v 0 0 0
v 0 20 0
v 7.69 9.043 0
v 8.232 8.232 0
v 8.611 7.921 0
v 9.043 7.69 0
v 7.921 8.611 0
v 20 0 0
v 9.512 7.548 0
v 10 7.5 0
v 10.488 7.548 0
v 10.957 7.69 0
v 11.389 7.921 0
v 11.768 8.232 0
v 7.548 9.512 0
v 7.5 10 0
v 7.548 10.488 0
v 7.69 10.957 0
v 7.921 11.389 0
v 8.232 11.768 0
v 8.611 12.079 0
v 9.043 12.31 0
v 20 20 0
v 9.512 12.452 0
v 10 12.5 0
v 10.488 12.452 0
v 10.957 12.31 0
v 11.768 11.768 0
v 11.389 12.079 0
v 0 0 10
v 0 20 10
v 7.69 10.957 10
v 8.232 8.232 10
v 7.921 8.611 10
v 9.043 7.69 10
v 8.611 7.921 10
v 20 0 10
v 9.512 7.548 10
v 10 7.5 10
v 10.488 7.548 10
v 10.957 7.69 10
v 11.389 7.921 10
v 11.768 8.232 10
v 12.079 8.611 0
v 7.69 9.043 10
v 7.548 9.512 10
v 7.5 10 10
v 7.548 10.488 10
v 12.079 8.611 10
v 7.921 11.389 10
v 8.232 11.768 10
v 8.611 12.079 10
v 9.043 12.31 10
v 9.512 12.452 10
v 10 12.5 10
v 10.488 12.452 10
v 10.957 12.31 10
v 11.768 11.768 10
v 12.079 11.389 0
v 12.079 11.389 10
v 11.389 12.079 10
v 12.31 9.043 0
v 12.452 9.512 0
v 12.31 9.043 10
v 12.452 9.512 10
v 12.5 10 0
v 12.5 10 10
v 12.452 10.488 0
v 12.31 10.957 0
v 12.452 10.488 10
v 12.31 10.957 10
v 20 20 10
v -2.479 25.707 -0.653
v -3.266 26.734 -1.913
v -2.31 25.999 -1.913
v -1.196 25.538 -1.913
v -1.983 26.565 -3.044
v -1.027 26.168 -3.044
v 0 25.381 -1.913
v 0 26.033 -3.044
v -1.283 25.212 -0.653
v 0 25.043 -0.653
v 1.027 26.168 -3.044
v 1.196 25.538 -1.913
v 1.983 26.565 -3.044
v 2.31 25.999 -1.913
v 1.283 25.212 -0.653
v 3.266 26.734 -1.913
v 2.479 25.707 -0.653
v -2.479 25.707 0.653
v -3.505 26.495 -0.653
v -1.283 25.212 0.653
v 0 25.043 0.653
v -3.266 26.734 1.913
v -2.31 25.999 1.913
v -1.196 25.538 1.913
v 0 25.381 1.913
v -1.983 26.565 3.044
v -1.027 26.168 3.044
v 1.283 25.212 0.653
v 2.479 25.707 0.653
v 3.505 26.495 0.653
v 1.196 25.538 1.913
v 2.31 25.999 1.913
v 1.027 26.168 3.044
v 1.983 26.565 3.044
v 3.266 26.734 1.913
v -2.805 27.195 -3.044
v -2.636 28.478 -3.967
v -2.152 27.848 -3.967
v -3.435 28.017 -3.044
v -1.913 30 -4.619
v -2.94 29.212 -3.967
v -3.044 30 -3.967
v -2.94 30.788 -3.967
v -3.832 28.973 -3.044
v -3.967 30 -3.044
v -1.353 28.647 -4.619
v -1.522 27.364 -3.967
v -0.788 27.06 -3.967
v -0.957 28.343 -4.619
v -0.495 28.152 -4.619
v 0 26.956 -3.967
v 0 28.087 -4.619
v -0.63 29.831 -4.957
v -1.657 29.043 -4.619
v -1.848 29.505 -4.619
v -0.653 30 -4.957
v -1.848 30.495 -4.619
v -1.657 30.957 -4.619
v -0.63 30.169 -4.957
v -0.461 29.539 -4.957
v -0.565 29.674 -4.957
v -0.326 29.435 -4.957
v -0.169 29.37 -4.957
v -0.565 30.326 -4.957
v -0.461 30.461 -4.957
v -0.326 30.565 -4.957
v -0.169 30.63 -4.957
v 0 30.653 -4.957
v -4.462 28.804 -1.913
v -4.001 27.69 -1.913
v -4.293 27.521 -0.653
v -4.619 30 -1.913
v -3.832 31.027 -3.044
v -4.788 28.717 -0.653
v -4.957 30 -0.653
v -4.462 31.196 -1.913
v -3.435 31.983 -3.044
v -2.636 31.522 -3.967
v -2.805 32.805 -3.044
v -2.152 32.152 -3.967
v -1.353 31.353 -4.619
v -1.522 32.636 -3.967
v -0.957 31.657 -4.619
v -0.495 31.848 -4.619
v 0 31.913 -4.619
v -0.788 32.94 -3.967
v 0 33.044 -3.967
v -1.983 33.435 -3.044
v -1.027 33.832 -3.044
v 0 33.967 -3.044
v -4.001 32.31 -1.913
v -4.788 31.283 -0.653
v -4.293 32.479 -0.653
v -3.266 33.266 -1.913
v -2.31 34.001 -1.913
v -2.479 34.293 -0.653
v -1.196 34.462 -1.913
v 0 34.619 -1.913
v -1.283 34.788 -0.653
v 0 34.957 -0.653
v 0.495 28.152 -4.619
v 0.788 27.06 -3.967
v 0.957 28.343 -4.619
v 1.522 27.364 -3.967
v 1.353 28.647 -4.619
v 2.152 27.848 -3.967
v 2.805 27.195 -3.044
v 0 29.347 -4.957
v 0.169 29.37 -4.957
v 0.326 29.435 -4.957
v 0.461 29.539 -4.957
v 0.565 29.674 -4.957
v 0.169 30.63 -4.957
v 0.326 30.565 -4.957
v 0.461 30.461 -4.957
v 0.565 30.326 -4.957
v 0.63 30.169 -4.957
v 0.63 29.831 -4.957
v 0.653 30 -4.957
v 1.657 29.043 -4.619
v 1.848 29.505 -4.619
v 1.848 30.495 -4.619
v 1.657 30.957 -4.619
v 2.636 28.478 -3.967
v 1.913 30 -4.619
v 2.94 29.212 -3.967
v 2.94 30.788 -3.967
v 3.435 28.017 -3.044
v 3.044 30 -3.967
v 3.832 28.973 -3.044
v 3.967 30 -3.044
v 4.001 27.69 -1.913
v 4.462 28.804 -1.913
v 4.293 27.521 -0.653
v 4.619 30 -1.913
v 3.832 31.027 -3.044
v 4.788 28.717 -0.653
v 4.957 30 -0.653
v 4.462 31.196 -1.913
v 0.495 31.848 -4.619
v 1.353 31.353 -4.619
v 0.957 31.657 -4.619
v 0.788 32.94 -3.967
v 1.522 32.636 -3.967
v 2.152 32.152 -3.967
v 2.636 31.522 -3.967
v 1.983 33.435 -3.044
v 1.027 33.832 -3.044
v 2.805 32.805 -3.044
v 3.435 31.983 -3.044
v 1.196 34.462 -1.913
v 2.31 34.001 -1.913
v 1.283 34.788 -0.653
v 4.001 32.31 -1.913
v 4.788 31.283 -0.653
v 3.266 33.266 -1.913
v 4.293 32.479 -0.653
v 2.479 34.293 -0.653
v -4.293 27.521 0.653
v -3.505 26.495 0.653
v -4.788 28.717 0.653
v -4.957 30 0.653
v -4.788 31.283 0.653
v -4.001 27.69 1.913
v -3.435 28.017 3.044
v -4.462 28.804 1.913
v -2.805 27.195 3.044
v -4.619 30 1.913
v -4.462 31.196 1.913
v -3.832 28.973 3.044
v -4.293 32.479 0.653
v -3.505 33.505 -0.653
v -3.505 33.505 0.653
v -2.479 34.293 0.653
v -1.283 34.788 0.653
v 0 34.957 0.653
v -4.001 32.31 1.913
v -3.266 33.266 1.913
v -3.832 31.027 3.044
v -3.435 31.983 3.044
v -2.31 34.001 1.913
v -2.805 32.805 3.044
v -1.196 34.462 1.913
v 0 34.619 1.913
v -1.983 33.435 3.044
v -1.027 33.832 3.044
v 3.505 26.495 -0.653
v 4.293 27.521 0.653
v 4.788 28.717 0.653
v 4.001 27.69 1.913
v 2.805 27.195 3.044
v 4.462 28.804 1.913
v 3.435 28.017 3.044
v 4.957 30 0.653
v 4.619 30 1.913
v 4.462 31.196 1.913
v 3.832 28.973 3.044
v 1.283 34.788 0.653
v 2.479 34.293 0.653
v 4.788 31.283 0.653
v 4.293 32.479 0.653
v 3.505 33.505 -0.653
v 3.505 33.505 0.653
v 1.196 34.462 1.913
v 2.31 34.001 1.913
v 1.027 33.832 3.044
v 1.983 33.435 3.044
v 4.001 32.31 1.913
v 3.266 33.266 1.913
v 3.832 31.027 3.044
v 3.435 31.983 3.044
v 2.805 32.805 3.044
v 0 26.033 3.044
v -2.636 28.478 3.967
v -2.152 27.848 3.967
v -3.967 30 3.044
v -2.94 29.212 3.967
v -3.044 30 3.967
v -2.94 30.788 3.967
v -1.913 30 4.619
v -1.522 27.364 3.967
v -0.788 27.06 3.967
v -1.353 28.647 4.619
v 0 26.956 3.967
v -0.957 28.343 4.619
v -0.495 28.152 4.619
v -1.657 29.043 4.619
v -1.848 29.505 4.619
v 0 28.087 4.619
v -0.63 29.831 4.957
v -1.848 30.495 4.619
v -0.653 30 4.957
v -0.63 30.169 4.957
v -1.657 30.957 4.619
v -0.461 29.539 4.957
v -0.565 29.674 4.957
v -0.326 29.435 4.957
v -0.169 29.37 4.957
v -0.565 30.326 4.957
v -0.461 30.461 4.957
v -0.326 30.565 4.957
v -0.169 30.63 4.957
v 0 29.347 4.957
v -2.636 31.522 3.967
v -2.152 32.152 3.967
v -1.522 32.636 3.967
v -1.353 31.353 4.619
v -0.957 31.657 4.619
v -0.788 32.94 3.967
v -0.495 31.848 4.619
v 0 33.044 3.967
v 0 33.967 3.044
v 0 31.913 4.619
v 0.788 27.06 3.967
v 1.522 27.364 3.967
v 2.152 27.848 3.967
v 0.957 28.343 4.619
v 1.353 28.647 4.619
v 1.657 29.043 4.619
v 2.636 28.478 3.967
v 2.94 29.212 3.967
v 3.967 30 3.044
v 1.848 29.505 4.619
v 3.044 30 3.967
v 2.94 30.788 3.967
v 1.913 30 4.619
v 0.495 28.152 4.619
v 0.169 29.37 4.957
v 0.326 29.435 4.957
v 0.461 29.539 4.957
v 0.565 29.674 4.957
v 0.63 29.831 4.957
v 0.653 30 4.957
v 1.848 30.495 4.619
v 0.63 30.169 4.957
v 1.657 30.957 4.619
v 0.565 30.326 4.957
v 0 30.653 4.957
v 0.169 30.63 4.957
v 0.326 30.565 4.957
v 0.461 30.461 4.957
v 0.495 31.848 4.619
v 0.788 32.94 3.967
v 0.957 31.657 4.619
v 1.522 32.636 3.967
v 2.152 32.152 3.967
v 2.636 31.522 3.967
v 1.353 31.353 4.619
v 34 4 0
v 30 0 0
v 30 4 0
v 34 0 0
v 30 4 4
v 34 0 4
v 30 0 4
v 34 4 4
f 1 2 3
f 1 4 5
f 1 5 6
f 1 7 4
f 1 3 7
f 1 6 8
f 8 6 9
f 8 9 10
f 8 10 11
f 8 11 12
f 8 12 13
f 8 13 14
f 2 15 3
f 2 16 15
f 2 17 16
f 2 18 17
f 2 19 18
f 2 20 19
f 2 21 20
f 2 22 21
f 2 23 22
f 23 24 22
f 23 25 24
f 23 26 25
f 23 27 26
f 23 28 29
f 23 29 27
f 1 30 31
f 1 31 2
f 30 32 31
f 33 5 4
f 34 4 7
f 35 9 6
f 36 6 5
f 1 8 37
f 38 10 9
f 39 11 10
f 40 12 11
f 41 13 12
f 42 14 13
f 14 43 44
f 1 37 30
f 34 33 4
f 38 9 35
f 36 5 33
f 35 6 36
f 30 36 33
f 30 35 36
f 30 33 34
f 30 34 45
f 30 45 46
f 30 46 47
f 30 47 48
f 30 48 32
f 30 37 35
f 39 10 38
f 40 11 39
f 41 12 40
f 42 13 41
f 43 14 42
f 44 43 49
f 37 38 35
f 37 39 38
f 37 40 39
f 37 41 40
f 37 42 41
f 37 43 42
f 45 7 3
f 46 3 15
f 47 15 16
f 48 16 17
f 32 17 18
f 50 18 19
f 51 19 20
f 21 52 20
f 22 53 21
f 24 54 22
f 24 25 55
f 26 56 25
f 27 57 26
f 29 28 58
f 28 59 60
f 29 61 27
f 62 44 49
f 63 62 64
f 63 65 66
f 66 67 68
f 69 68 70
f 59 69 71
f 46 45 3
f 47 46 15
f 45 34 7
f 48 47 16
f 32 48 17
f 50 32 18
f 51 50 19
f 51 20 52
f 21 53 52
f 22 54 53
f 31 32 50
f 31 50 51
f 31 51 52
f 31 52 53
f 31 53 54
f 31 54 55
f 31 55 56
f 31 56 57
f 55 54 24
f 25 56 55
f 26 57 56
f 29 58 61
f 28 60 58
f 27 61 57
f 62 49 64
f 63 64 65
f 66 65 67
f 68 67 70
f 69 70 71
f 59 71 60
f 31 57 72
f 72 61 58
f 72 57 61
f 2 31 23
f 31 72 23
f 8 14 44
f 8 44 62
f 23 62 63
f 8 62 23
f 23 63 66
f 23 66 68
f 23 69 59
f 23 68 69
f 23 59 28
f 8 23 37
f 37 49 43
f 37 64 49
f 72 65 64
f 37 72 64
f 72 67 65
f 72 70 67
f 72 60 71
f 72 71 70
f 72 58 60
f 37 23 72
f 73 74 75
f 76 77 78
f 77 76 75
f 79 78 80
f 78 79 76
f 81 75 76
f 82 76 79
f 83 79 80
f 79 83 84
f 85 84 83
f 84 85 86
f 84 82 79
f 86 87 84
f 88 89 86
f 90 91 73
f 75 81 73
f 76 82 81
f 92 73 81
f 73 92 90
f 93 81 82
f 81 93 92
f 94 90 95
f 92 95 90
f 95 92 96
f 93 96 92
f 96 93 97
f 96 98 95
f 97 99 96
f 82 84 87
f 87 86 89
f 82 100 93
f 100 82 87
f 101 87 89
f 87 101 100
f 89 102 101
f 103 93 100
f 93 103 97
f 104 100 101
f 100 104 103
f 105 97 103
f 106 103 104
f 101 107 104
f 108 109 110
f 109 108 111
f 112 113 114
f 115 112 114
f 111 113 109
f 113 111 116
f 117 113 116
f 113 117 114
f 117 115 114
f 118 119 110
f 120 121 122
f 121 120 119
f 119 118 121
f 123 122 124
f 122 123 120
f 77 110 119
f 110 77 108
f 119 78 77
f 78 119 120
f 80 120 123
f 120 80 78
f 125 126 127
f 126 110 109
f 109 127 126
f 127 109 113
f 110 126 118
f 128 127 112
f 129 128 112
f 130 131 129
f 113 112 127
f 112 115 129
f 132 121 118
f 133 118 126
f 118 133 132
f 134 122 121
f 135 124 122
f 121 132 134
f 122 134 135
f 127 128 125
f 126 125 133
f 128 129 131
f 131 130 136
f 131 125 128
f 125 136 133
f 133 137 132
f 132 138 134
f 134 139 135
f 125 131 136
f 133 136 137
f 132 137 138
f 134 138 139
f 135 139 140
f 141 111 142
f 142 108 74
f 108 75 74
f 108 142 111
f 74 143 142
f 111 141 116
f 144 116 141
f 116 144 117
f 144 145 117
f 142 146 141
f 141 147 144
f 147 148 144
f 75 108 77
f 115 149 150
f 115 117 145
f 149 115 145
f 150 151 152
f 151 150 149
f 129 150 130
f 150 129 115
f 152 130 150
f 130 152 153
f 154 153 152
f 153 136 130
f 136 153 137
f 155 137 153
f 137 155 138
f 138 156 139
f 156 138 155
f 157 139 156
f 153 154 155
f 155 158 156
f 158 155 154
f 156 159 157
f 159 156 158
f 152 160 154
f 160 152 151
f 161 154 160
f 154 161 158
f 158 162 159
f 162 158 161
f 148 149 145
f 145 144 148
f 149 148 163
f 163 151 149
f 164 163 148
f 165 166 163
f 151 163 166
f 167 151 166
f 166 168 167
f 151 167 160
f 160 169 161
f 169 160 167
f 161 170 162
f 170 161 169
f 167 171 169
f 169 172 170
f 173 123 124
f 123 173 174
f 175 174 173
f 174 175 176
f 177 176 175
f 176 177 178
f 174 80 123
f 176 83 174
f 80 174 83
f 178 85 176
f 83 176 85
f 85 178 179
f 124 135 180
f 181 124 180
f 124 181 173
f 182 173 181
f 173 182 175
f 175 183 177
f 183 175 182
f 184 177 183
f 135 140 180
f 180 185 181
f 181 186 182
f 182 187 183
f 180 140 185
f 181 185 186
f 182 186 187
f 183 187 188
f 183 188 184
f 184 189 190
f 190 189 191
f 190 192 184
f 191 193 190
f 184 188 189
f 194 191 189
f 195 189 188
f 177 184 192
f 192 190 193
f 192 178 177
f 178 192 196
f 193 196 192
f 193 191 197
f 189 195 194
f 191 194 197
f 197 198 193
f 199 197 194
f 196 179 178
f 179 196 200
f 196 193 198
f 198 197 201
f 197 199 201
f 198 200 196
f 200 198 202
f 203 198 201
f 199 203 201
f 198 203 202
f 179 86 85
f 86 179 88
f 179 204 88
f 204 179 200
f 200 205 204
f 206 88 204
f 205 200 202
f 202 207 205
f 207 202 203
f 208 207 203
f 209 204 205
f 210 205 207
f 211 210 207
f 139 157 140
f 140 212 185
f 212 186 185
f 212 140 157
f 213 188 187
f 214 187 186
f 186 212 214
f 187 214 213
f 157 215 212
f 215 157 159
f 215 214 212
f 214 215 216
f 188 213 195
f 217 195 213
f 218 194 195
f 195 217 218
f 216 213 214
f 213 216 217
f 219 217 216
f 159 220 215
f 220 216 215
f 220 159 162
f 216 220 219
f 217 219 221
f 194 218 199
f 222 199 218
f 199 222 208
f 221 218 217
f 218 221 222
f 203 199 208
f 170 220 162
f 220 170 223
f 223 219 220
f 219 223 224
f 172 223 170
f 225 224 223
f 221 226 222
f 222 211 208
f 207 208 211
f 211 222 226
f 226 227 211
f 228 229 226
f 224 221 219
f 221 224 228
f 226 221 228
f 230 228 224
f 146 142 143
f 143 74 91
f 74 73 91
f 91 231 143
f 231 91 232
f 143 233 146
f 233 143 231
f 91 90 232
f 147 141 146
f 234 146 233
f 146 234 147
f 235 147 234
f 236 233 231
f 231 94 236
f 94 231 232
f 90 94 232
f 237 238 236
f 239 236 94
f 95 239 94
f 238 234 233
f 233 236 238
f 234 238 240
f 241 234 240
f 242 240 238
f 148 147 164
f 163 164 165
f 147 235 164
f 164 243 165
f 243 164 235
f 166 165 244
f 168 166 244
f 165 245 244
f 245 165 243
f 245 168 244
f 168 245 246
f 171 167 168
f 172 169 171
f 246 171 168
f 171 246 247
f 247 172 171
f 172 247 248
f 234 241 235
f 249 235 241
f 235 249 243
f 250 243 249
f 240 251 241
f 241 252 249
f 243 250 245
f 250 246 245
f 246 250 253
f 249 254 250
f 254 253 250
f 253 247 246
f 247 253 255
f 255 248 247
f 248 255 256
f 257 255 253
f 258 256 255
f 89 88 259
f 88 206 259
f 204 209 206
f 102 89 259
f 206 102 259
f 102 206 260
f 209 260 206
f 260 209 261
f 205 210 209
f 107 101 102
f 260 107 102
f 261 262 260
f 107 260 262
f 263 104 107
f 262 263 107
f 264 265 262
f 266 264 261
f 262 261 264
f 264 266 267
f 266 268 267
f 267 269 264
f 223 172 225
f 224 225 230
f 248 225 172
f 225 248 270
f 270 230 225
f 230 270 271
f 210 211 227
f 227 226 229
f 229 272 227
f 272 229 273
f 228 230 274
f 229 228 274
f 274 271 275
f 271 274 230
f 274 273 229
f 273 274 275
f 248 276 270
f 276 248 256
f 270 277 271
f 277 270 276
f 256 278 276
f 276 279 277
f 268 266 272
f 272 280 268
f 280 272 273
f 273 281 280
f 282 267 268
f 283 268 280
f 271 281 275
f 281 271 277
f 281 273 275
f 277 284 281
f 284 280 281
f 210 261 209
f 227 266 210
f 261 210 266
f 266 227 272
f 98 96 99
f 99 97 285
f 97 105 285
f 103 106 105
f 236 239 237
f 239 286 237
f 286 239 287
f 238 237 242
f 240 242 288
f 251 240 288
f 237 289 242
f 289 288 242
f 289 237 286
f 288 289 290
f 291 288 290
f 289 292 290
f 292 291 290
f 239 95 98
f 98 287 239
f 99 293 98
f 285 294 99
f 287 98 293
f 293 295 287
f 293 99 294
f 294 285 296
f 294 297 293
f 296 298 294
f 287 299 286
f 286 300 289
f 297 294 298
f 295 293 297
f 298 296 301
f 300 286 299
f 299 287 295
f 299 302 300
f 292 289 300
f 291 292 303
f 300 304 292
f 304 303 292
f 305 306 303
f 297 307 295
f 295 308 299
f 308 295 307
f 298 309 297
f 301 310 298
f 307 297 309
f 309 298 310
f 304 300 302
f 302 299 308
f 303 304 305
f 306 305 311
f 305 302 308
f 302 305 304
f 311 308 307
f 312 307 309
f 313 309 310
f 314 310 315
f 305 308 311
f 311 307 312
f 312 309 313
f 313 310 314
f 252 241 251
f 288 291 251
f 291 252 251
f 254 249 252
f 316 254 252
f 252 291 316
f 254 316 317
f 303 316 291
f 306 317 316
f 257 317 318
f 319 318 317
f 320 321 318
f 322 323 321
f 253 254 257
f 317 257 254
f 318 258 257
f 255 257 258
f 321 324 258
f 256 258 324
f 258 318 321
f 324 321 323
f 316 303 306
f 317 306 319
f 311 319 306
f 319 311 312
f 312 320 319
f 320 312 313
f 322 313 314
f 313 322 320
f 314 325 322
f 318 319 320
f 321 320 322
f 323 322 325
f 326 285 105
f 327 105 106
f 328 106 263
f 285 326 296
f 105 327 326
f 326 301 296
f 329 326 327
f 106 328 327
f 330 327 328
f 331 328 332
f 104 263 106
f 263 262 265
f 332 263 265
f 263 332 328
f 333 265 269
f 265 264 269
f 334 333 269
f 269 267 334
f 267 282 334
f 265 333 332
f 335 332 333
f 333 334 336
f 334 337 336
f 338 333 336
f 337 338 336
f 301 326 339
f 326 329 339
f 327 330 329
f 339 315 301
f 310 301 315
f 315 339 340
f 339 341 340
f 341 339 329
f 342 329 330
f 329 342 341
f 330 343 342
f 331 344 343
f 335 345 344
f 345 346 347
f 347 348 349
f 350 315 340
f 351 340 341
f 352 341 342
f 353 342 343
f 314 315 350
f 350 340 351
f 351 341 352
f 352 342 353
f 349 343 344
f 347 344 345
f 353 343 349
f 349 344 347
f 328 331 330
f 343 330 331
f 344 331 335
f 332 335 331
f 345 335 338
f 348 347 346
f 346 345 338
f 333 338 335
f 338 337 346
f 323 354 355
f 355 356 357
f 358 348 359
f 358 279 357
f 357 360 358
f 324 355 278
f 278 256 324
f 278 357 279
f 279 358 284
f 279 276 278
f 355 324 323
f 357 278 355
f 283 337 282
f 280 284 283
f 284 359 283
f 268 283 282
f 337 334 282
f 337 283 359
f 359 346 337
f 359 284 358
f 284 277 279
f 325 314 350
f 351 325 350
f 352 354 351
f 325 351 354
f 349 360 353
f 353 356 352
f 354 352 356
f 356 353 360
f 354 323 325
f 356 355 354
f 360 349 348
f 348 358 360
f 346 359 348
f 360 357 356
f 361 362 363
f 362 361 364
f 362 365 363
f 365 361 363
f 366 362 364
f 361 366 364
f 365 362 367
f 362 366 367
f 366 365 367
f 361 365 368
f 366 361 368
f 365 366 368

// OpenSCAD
// Fixture for the 3MF reader: two colors (one translucent), an uncolored part, and a hole.
color("red") difference() {
  cube([20, 20, 10]);
  translate([10, 10, -1]) cylinder(h = 12, d = 5, $fn = 32);
}
color([0, 0.5, 1, 0.6]) translate([0, 30, 0]) sphere(5, $fn = 24);
translate([30, 0, 0]) cube(4);
